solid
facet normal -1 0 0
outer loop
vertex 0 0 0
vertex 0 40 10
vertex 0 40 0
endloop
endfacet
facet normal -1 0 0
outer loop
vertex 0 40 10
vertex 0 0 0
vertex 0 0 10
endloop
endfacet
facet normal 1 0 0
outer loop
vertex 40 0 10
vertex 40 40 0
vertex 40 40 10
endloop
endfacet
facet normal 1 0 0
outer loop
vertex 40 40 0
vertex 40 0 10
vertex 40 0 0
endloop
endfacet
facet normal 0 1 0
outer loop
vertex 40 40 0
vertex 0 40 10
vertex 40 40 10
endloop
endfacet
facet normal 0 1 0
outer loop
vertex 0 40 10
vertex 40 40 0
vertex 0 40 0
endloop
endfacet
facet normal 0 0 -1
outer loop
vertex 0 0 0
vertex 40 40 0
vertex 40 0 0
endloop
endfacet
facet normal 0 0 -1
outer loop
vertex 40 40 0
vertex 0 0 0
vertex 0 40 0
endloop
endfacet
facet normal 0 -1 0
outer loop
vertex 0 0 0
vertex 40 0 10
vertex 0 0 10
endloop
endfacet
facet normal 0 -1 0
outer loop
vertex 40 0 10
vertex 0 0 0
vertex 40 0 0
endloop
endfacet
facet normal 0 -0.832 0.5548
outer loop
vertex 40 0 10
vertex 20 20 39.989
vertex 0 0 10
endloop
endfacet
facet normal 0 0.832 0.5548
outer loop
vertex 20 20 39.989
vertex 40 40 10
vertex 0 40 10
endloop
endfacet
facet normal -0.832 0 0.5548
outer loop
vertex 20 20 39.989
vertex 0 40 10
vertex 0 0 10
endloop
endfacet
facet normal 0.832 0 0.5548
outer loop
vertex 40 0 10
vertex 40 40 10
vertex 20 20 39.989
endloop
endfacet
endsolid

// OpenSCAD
difference() {
  cube([40, 40, 40], center=false);

  translate([0, 0, 10]){
    rotate([56.3, 0, 0]){
      color([1,0.8,0]) {
        cube([40, 50, 30], center=false);
      }
    }
  }
  translate([0, 40, 0]){
    mirror([0,1,0]){
      translate([0, 0, 10]){
        rotate([56.3, 0, 0]){
          color([1,0.8,0]) {
            cube([40, 50, 30], center=false);
          }
        }
      }
    }
  }
  translate([0, 0, 10]){
    rotate([0, 303.7, 0]){
      color([1,0.4,0.4]) {
        cube([40, 50, 30], center=false);
      }
    }
  }
  translate([40, 0, 0]){
    mirror([1,0,0]){
      translate([0, 0, 10]){
        rotate([0, 303.7, 0]){
          color([0,0.6,0]) {
            cube([40, 50, 30], center=false);
          }
        }
      }
    }
  }
  }
